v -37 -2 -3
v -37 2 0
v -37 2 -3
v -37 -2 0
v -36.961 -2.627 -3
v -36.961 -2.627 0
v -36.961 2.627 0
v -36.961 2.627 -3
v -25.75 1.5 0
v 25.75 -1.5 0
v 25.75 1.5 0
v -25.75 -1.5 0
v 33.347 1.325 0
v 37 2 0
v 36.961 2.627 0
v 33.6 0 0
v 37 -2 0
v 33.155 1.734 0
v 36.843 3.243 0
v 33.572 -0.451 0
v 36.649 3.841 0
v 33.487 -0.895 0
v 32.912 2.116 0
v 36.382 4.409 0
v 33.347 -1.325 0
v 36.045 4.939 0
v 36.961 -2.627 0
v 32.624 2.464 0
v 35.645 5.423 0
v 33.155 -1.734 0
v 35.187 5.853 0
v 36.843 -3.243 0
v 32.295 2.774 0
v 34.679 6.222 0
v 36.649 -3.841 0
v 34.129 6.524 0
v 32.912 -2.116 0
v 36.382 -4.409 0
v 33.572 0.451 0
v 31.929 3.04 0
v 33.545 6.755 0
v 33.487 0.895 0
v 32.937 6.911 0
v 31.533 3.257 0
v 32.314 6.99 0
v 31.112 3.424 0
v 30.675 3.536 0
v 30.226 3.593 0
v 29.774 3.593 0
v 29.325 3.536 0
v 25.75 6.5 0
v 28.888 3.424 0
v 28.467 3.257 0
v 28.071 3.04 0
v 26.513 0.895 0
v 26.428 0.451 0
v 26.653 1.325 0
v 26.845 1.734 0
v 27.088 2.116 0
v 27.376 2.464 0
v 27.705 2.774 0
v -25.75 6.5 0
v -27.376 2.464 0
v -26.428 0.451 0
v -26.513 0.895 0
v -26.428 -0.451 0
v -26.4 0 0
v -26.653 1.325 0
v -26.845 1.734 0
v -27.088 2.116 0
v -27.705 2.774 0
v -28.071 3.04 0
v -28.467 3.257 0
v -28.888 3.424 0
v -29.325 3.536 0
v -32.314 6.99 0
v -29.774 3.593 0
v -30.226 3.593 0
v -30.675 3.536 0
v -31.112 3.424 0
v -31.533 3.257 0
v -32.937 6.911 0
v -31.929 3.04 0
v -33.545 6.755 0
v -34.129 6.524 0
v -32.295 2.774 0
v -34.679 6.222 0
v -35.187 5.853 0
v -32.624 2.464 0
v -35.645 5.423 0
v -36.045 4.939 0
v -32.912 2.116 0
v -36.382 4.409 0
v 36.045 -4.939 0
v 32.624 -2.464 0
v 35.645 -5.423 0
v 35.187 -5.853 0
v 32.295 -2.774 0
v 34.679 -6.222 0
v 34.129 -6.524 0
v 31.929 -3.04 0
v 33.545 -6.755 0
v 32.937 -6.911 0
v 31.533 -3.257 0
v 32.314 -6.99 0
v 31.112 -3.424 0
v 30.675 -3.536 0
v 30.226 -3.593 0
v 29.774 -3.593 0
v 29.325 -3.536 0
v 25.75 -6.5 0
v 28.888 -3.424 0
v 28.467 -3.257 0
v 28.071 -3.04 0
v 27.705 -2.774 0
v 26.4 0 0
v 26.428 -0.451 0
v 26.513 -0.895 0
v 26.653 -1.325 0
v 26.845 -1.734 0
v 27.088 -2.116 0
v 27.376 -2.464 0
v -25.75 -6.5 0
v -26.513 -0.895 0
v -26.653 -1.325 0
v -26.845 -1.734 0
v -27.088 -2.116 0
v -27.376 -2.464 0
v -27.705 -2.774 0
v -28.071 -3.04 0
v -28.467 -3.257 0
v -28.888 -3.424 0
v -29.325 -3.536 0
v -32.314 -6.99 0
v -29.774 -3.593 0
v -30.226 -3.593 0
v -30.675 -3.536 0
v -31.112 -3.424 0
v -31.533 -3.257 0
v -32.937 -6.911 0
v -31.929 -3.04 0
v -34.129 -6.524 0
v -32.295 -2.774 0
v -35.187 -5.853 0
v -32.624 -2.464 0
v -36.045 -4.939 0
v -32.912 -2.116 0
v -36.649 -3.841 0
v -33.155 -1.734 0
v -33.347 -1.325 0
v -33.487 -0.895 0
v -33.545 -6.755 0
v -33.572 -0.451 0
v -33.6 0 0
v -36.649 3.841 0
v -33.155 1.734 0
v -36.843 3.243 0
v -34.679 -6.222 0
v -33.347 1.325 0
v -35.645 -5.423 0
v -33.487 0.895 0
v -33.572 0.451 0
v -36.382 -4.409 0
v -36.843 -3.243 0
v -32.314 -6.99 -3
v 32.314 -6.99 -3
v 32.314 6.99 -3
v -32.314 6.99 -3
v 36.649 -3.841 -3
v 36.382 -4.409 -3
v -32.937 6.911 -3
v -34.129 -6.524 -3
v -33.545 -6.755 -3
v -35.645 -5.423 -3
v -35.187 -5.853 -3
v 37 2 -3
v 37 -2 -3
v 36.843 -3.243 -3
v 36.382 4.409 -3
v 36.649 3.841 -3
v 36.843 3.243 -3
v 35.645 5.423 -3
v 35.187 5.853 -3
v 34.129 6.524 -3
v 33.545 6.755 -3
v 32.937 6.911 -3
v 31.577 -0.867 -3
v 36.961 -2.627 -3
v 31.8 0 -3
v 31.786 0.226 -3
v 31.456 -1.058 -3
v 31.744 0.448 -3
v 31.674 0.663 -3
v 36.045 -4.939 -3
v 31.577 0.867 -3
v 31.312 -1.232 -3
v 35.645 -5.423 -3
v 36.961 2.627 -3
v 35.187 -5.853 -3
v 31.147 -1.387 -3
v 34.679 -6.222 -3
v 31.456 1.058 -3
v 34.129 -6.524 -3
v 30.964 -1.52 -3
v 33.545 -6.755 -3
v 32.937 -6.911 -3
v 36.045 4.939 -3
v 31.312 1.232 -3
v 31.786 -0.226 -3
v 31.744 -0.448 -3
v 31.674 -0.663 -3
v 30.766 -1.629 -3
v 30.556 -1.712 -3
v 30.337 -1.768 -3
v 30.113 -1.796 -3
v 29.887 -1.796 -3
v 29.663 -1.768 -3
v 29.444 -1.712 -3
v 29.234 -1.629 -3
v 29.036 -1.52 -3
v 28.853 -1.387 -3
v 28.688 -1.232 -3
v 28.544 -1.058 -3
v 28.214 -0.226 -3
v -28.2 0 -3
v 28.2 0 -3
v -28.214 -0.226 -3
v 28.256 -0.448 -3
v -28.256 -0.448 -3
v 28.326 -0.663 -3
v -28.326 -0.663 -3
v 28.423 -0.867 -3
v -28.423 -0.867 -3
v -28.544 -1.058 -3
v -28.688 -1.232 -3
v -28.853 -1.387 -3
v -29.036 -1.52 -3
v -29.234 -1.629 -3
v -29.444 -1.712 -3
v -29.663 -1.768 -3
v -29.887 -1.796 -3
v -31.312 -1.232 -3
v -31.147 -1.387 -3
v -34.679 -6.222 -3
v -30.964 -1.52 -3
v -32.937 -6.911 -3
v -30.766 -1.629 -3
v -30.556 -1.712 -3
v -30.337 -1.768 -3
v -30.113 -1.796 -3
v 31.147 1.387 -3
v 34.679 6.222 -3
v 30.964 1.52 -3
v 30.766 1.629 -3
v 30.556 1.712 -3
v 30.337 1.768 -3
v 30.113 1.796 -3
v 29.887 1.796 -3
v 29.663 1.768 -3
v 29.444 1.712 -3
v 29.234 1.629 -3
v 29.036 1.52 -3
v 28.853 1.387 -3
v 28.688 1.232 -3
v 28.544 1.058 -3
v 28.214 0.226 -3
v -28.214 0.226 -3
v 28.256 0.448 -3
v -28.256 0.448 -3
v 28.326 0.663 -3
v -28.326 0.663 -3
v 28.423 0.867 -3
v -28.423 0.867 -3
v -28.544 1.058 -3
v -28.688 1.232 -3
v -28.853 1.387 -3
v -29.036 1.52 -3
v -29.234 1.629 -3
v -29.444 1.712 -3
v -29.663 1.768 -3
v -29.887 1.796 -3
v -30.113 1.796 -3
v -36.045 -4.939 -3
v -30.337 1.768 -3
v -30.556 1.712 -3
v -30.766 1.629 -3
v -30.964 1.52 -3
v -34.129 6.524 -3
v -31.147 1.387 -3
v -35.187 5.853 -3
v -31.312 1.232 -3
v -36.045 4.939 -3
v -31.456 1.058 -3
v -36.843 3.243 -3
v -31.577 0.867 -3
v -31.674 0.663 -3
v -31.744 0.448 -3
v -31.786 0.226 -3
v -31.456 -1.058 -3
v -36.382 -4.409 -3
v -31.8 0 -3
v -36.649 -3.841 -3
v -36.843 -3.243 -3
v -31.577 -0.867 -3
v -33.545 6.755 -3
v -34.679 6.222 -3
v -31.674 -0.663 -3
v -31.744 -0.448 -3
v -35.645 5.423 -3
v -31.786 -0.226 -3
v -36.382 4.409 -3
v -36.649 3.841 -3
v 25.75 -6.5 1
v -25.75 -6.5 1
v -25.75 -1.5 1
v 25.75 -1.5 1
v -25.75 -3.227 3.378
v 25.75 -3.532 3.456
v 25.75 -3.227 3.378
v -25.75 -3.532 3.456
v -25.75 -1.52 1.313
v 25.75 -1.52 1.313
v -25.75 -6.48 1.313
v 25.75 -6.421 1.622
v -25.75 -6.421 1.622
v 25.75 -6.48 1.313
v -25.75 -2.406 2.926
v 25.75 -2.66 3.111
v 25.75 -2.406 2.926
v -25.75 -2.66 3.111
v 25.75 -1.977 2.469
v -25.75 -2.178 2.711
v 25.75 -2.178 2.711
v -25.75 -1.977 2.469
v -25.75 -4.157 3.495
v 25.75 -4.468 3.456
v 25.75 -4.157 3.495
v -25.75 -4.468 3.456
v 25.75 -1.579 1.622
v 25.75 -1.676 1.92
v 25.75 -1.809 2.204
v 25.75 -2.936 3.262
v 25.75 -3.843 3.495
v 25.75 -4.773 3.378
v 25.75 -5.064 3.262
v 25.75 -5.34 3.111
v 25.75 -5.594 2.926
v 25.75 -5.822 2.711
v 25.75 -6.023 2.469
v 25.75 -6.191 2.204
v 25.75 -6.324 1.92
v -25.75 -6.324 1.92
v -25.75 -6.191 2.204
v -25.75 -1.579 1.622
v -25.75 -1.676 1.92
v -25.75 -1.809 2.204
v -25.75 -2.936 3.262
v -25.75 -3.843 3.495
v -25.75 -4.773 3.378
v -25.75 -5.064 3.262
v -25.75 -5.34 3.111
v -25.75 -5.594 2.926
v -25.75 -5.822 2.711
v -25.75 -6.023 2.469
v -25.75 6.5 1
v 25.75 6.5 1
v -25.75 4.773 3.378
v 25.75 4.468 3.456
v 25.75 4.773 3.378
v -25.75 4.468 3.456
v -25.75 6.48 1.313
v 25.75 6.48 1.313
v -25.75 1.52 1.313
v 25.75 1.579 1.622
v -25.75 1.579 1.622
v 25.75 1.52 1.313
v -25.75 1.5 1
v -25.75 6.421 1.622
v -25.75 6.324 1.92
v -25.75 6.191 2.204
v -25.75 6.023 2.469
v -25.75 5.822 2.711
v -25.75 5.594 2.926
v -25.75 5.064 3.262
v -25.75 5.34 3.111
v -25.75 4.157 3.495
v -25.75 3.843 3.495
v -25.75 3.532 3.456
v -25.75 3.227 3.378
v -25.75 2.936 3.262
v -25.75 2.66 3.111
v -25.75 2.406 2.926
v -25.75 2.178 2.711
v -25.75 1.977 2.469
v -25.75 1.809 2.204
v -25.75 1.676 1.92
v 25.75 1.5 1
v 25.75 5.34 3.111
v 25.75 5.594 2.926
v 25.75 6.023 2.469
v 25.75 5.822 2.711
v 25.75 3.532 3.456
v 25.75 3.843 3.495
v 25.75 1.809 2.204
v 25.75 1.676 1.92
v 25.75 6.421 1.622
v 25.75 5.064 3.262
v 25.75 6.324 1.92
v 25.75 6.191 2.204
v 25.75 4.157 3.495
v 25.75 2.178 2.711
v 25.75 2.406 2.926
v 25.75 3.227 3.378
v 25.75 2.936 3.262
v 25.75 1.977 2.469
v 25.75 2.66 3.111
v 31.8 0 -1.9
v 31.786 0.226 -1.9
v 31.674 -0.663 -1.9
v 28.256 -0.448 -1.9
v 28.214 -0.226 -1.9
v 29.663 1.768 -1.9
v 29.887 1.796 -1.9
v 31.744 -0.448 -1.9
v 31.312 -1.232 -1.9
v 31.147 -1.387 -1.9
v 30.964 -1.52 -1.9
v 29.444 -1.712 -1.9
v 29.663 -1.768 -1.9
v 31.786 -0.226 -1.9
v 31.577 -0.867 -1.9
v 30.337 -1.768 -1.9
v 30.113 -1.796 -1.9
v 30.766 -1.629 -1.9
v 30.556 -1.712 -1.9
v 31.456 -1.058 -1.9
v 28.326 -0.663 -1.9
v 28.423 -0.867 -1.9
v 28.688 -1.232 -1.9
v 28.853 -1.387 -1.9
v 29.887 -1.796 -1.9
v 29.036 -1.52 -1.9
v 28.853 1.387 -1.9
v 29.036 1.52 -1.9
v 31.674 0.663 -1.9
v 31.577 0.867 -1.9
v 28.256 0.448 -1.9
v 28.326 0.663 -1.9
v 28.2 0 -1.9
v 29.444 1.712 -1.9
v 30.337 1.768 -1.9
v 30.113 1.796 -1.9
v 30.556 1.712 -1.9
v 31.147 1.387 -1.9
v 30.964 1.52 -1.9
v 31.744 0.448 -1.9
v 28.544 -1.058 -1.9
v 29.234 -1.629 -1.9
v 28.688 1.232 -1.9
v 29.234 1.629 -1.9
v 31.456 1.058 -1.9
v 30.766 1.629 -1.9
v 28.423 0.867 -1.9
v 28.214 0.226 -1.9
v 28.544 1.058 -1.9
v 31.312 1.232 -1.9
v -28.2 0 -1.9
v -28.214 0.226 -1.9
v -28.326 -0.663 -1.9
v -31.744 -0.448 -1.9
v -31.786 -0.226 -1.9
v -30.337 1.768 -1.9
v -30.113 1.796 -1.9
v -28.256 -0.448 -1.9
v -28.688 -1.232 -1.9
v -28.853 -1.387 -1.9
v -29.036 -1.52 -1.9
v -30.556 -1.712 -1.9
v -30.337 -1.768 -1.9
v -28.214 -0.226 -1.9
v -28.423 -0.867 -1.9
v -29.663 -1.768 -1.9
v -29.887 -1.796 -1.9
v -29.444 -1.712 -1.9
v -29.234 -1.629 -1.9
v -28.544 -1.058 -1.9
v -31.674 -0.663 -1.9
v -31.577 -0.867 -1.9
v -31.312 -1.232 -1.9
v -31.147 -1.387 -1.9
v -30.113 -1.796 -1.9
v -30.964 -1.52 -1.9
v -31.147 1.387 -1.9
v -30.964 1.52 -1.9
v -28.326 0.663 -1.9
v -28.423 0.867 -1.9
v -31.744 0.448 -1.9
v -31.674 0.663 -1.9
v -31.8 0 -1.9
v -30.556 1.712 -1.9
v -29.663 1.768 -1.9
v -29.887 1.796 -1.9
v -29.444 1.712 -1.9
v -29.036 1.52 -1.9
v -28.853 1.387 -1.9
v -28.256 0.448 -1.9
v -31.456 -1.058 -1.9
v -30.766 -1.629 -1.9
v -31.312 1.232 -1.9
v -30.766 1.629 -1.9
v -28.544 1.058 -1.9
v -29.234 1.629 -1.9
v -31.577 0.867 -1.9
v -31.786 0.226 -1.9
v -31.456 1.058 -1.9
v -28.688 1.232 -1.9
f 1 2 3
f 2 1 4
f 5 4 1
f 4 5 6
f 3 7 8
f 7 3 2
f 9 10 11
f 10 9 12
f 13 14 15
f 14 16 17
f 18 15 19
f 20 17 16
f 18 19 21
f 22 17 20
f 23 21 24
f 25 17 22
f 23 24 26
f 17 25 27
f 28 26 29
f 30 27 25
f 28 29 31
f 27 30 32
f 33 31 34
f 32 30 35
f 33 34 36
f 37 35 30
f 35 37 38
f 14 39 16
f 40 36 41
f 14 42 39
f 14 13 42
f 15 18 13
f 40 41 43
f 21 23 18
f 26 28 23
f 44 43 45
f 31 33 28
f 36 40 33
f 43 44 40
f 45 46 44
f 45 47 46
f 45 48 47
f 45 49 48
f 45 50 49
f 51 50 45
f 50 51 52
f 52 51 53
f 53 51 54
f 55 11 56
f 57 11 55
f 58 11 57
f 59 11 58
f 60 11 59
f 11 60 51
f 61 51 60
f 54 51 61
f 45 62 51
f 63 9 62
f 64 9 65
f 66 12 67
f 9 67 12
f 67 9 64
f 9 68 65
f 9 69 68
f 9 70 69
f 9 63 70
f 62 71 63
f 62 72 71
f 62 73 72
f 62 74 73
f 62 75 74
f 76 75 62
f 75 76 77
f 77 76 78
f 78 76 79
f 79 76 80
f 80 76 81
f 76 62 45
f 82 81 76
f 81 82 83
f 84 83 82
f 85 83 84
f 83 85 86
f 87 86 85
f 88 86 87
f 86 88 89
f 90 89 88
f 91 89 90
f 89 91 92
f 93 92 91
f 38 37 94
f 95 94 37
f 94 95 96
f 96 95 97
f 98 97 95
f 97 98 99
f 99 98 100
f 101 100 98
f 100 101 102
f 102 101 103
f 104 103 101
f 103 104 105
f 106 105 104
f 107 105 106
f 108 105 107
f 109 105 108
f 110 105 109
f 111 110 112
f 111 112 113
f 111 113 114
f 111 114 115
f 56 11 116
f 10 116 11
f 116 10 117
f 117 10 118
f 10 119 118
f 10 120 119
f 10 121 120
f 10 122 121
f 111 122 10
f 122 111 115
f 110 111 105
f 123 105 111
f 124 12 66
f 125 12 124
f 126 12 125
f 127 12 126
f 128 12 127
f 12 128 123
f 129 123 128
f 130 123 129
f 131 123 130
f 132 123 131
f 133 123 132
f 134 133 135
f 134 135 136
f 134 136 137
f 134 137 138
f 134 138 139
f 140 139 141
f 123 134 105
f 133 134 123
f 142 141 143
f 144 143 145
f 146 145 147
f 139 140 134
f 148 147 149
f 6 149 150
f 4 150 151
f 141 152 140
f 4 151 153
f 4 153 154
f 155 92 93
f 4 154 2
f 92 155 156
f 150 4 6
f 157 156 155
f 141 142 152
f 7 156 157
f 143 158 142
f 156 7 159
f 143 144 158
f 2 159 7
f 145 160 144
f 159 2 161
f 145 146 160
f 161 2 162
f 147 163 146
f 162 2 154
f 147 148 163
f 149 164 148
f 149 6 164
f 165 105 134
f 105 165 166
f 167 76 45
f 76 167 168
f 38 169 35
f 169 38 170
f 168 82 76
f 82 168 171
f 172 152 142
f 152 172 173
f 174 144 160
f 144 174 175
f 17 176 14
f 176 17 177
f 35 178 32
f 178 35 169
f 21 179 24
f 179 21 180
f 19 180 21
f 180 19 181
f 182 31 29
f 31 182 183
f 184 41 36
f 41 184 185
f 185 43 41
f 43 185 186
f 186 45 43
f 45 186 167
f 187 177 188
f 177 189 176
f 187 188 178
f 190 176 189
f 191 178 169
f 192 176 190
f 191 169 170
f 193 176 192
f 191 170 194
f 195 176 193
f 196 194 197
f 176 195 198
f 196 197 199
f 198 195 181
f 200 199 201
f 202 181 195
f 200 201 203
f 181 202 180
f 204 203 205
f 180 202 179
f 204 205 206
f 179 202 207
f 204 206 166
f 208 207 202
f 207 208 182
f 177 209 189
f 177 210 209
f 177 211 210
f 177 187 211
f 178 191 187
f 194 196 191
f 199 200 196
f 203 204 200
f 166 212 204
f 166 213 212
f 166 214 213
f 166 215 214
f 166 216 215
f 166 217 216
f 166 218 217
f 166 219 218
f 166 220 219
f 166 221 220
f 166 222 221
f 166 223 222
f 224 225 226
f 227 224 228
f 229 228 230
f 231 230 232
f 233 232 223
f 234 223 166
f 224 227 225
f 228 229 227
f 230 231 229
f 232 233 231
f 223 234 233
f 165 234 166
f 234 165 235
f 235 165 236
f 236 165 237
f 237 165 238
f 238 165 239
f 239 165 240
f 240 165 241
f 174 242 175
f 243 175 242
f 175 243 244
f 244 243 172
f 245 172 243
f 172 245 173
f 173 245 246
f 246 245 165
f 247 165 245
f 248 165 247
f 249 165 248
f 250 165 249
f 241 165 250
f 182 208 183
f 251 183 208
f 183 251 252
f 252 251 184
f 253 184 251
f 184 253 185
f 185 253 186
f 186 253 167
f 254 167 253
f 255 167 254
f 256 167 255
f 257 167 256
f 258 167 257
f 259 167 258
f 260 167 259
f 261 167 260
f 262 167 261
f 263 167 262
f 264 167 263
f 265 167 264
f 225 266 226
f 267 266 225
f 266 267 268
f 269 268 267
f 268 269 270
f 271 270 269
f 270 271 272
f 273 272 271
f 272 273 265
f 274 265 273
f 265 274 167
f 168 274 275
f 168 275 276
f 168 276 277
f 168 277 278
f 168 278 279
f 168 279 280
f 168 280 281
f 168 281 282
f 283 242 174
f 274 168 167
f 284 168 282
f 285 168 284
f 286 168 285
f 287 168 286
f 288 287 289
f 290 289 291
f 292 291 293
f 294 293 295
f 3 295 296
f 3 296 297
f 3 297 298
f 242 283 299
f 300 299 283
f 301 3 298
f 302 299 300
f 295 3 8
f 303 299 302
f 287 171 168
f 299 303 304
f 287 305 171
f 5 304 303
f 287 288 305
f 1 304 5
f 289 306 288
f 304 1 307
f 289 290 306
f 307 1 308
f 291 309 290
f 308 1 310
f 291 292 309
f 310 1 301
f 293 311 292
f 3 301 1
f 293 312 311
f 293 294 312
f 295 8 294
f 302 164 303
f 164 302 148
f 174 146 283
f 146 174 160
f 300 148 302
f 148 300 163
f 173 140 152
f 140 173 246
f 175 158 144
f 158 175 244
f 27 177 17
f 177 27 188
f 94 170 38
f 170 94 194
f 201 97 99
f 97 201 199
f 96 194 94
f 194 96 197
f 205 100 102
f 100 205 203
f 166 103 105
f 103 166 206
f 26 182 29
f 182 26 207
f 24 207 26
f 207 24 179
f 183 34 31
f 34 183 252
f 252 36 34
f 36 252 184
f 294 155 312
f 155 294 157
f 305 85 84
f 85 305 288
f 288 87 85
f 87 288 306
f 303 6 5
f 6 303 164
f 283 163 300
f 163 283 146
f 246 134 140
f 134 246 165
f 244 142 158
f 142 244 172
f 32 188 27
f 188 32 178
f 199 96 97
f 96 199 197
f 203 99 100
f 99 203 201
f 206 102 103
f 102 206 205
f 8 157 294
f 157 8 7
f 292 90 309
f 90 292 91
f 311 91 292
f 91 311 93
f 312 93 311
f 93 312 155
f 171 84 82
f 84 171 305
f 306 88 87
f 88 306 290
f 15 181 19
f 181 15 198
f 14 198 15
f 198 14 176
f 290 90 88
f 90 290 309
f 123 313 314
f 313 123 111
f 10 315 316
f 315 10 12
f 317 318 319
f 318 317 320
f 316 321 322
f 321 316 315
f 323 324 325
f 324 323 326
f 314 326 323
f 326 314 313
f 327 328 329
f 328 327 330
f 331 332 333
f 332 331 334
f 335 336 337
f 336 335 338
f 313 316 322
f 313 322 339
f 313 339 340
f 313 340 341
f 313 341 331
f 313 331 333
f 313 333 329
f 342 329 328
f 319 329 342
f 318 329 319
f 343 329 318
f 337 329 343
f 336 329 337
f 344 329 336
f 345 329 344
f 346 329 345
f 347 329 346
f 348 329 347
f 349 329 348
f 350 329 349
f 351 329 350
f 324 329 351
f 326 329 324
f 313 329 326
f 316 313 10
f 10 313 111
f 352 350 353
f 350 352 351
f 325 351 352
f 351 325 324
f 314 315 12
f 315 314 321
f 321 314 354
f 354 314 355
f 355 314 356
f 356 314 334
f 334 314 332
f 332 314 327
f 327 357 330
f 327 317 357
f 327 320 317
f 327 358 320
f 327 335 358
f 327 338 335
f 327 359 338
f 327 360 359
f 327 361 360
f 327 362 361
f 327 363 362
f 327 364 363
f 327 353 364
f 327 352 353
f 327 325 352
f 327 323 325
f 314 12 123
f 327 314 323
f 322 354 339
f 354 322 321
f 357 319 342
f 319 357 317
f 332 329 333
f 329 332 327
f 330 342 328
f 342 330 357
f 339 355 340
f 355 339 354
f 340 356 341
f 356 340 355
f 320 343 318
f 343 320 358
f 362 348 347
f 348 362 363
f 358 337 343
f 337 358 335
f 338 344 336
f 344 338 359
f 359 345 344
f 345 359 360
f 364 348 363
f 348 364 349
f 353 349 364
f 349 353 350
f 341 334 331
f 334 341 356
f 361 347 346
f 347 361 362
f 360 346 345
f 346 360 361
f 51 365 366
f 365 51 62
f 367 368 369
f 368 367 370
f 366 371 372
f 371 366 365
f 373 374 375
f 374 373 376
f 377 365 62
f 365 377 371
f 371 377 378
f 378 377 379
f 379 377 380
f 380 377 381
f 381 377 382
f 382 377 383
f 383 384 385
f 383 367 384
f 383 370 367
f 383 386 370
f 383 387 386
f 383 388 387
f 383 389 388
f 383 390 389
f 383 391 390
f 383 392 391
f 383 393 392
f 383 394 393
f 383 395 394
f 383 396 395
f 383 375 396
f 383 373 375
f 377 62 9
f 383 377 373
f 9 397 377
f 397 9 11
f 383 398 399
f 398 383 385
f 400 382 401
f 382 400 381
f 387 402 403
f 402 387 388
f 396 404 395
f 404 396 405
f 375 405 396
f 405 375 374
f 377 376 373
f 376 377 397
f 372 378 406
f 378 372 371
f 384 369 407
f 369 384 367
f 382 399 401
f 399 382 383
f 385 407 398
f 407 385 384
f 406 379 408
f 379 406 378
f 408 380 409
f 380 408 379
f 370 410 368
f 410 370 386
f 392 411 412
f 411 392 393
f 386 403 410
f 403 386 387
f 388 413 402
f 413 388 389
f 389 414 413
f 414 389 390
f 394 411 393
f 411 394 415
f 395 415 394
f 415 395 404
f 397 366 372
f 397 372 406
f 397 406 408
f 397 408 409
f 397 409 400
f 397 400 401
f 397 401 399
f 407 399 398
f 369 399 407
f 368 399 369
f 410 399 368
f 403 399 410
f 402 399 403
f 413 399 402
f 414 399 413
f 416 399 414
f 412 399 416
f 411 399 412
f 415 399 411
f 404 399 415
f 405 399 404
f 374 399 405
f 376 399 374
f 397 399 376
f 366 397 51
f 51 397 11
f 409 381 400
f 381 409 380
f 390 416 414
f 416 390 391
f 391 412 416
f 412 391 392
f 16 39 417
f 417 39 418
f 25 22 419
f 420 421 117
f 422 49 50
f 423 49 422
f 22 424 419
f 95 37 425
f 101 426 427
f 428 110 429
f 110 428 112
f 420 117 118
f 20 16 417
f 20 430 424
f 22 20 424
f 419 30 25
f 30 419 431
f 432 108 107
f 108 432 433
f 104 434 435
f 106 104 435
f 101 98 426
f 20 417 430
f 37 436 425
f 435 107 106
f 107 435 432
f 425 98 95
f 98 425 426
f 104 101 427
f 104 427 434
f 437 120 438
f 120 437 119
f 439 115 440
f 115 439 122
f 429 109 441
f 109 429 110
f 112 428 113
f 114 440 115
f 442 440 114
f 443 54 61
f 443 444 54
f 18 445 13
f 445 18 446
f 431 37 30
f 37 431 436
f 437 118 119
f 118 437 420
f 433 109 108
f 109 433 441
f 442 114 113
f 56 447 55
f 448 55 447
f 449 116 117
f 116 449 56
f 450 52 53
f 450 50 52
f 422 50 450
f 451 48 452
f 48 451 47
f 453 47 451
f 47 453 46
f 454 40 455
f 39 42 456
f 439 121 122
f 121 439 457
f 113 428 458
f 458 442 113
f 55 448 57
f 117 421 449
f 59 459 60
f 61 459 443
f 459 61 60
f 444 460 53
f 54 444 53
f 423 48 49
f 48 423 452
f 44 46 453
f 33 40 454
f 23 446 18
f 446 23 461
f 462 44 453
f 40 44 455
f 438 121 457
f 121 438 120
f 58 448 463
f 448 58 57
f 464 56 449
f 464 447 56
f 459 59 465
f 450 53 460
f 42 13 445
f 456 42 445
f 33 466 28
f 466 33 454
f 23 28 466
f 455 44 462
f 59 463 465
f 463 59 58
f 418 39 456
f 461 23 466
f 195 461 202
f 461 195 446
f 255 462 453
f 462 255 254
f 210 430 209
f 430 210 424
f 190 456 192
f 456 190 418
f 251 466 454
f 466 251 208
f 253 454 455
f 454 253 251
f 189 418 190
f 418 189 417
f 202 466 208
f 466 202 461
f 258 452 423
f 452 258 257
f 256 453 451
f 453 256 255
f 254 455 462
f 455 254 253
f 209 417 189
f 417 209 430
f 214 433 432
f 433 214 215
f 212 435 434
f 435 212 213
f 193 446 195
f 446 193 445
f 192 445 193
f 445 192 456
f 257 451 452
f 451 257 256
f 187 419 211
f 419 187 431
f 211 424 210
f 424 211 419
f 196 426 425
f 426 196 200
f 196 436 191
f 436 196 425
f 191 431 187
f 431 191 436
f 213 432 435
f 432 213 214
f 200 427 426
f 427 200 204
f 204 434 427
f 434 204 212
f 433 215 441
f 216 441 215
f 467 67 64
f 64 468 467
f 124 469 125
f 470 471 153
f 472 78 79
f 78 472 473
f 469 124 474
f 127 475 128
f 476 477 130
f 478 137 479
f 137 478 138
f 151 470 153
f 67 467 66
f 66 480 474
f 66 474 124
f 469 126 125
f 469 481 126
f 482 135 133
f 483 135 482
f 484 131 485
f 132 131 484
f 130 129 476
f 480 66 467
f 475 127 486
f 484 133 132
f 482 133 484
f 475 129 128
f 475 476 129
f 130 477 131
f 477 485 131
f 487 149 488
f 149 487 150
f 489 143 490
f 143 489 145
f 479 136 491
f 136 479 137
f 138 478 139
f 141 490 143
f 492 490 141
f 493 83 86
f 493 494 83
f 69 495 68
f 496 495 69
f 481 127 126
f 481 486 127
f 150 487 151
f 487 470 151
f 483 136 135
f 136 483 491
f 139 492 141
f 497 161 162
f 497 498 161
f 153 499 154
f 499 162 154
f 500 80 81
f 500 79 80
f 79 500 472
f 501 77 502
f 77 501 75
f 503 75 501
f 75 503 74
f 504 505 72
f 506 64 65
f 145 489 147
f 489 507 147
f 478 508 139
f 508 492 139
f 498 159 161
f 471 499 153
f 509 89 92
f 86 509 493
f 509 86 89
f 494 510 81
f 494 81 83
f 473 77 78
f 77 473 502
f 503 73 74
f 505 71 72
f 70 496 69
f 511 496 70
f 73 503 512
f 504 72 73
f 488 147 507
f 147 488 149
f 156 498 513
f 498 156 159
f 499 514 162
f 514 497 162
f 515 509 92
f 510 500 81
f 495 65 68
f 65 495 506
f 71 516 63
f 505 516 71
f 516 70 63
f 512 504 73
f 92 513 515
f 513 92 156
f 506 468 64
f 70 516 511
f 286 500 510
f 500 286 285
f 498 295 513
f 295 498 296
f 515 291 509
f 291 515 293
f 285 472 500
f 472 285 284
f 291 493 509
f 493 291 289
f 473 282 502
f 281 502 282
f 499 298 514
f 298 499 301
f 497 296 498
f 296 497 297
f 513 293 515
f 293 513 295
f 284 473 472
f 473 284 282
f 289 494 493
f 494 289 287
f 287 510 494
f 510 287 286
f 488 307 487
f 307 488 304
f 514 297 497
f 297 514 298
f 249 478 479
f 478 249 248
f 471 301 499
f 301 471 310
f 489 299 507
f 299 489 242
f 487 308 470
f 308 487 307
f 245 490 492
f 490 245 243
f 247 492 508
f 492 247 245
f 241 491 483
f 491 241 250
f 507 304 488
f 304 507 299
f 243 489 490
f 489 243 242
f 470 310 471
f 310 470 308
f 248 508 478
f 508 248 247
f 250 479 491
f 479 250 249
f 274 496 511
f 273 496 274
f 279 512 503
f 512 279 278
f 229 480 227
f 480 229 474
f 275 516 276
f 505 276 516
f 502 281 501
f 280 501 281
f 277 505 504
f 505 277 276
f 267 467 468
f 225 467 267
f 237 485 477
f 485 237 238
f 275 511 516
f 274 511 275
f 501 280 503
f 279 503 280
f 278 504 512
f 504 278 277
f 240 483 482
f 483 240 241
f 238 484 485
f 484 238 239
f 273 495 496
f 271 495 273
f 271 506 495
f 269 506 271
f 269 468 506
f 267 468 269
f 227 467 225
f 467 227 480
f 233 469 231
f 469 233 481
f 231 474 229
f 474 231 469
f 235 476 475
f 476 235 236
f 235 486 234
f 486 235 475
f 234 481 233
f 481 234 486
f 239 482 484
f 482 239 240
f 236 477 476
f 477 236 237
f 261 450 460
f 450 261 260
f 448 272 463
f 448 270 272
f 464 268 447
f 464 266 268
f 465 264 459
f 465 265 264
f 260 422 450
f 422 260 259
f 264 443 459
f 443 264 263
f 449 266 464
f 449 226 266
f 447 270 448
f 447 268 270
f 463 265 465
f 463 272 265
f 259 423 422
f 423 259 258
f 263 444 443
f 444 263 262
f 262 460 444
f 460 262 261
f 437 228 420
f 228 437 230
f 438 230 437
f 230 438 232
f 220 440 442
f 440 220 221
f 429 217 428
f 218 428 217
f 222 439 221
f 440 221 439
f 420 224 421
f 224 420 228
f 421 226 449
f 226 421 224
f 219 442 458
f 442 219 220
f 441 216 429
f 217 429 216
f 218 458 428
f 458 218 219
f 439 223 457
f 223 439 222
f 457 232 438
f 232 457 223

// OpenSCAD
$fn = 50;


difference() {
	union() {
		translate(v = [0, 0, -3]) {
			hull() {
				translate(v = [-32.0000000000, 2.0000000000, 0]) {
					cylinder(h = 3, r = 5);
				}
				translate(v = [32.0000000000, 2.0000000000, 0]) {
					cylinder(h = 3, r = 5);
				}
				translate(v = [-32.0000000000, -2.0000000000, 0]) {
					cylinder(h = 3, r = 5);
				}
				translate(v = [32.0000000000, -2.0000000000, 0]) {
					cylinder(h = 3, r = 5);
				}
			}
		}
		translate(v = [-25.7500000000, -4.0000000000, -1.5000000000]) {
			rotate(a = [90, 0, 90]) {
				hull() {
					translate(v = [-0.0000000000, 2.5000000000, 0]) {
						cylinder(h = 51.5000000000, r = 2.5000000000);
					}
					translate(v = [0.0000000000, 2.5000000000, 0]) {
						cylinder(h = 51.5000000000, r = 2.5000000000);
					}
					translate(v = [-0.0000000000, -2.5000000000, 0]) {
						cylinder(h = 51.5000000000, r = 2.5000000000);
					}
					translate(v = [0.0000000000, -2.5000000000, 0]) {
						cylinder(h = 51.5000000000, r = 2.5000000000);
					}
				}
			}
		}
		translate(v = [-25.7500000000, 4.0000000000, -1.5000000000]) {
			rotate(a = [90, 0, 90]) {
				hull() {
					translate(v = [-0.0000000000, 2.5000000000, 0]) {
						cylinder(h = 51.5000000000, r = 2.5000000000);
					}
					translate(v = [0.0000000000, 2.5000000000, 0]) {
						cylinder(h = 51.5000000000, r = 2.5000000000);
					}
					translate(v = [-0.0000000000, -2.5000000000, 0]) {
						cylinder(h = 51.5000000000, r = 2.5000000000);
					}
					translate(v = [0.0000000000, -2.5000000000, 0]) {
						cylinder(h = 51.5000000000, r = 2.5000000000);
					}
				}
			}
		}
	}
	union() {
		translate(v = [30.0000000000, 0.0000000000, 0]) {
			rotate(a = [0, 0, 0]) {
				difference() {
					union() {
						translate(v = [0, 0, -3.0000000000]) {
							cylinder(h = 3, r = 1.5000000000);
						}
						translate(v = [0, 0, -1.9000000000]) {
							cylinder(h = 1.9000000000, r1 = 1.8000000000, r2 = 3.6000000000);
						}
						translate(v = [0, 0, -3.0000000000]) {
							cylinder(h = 3, r = 1.8000000000);
						}
						translate(v = [0, 0, -3.0000000000]) {
							cylinder(h = 3, r = 1.5000000000);
						}
					}
					union();
				}
			}
		}
		translate(v = [-30.0000000000, 0.0000000000, 0]) {
			rotate(a = [0, 0, 0]) {
				difference() {
					union() {
						translate(v = [0, 0, -3.0000000000]) {
							cylinder(h = 3, r = 1.5000000000);
						}
						translate(v = [0, 0, -1.9000000000]) {
							cylinder(h = 1.9000000000, r1 = 1.8000000000, r2 = 3.6000000000);
						}
						translate(v = [0, 0, -3.0000000000]) {
							cylinder(h = 3, r = 1.8000000000);
						}
						translate(v = [0, 0, -3.0000000000]) {
							cylinder(h = 3, r = 1.5000000000);
						}
					}
					union();
				}
			}
		}
		translate(v = [-250.0000000000, -250.0000000000, -503]) {
			cube(size = [500, 500, 500]);
		}
		translate(v = [-250.0000000000, -250.0000000000, -503]) {
			cube(size = [500, 500, 500]);
		}
		translate(v = [-250.0000000000, -250.0000000000, -503]) {
			cube(size = [500, 500, 500]);
		}
		translate(v = [-30.0000000000, 0.0000000000, -100.0000000000]) {
			cylinder(h = 200, r = 1.8000000000);
		}
		translate(v = [30.0000000000, 0.0000000000, -100.0000000000]) {
			cylinder(h = 200, r = 1.8000000000);
		}
		translate(v = [30.0000000000, 0.0000000000, -100.0000000000]) {
			cylinder(h = 200, r = 1.8000000000);
		}
		translate(v = [-30.0000000000, 0.0000000000, -100.0000000000]) {
			cylinder(h = 200, r = 1.8000000000);
		}
		translate(v = [30.0000000000, 0.0000000000, -100.0000000000]) {
			cylinder(h = 200, r = 1.8000000000);
		}
		translate(v = [-30.0000000000, 0.0000000000, -100.0000000000]) {
			cylinder(h = 200, r = 1.8000000000);
		}
		translate(v = [30.0000000000, 0.0000000000, -100.0000000000]) {
			cylinder(h = 200, r = 1.8000000000);
		}
		translate(v = [-30.0000000000, 0.0000000000, -100.0000000000]) {
			cylinder(h = 200, r = 1.8000000000);
		}
		translate(v = [30.0000000000, 0.0000000000, -100.0000000000]) {
			cylinder(h = 200, r = 1.8000000000);
		}
	}
}
